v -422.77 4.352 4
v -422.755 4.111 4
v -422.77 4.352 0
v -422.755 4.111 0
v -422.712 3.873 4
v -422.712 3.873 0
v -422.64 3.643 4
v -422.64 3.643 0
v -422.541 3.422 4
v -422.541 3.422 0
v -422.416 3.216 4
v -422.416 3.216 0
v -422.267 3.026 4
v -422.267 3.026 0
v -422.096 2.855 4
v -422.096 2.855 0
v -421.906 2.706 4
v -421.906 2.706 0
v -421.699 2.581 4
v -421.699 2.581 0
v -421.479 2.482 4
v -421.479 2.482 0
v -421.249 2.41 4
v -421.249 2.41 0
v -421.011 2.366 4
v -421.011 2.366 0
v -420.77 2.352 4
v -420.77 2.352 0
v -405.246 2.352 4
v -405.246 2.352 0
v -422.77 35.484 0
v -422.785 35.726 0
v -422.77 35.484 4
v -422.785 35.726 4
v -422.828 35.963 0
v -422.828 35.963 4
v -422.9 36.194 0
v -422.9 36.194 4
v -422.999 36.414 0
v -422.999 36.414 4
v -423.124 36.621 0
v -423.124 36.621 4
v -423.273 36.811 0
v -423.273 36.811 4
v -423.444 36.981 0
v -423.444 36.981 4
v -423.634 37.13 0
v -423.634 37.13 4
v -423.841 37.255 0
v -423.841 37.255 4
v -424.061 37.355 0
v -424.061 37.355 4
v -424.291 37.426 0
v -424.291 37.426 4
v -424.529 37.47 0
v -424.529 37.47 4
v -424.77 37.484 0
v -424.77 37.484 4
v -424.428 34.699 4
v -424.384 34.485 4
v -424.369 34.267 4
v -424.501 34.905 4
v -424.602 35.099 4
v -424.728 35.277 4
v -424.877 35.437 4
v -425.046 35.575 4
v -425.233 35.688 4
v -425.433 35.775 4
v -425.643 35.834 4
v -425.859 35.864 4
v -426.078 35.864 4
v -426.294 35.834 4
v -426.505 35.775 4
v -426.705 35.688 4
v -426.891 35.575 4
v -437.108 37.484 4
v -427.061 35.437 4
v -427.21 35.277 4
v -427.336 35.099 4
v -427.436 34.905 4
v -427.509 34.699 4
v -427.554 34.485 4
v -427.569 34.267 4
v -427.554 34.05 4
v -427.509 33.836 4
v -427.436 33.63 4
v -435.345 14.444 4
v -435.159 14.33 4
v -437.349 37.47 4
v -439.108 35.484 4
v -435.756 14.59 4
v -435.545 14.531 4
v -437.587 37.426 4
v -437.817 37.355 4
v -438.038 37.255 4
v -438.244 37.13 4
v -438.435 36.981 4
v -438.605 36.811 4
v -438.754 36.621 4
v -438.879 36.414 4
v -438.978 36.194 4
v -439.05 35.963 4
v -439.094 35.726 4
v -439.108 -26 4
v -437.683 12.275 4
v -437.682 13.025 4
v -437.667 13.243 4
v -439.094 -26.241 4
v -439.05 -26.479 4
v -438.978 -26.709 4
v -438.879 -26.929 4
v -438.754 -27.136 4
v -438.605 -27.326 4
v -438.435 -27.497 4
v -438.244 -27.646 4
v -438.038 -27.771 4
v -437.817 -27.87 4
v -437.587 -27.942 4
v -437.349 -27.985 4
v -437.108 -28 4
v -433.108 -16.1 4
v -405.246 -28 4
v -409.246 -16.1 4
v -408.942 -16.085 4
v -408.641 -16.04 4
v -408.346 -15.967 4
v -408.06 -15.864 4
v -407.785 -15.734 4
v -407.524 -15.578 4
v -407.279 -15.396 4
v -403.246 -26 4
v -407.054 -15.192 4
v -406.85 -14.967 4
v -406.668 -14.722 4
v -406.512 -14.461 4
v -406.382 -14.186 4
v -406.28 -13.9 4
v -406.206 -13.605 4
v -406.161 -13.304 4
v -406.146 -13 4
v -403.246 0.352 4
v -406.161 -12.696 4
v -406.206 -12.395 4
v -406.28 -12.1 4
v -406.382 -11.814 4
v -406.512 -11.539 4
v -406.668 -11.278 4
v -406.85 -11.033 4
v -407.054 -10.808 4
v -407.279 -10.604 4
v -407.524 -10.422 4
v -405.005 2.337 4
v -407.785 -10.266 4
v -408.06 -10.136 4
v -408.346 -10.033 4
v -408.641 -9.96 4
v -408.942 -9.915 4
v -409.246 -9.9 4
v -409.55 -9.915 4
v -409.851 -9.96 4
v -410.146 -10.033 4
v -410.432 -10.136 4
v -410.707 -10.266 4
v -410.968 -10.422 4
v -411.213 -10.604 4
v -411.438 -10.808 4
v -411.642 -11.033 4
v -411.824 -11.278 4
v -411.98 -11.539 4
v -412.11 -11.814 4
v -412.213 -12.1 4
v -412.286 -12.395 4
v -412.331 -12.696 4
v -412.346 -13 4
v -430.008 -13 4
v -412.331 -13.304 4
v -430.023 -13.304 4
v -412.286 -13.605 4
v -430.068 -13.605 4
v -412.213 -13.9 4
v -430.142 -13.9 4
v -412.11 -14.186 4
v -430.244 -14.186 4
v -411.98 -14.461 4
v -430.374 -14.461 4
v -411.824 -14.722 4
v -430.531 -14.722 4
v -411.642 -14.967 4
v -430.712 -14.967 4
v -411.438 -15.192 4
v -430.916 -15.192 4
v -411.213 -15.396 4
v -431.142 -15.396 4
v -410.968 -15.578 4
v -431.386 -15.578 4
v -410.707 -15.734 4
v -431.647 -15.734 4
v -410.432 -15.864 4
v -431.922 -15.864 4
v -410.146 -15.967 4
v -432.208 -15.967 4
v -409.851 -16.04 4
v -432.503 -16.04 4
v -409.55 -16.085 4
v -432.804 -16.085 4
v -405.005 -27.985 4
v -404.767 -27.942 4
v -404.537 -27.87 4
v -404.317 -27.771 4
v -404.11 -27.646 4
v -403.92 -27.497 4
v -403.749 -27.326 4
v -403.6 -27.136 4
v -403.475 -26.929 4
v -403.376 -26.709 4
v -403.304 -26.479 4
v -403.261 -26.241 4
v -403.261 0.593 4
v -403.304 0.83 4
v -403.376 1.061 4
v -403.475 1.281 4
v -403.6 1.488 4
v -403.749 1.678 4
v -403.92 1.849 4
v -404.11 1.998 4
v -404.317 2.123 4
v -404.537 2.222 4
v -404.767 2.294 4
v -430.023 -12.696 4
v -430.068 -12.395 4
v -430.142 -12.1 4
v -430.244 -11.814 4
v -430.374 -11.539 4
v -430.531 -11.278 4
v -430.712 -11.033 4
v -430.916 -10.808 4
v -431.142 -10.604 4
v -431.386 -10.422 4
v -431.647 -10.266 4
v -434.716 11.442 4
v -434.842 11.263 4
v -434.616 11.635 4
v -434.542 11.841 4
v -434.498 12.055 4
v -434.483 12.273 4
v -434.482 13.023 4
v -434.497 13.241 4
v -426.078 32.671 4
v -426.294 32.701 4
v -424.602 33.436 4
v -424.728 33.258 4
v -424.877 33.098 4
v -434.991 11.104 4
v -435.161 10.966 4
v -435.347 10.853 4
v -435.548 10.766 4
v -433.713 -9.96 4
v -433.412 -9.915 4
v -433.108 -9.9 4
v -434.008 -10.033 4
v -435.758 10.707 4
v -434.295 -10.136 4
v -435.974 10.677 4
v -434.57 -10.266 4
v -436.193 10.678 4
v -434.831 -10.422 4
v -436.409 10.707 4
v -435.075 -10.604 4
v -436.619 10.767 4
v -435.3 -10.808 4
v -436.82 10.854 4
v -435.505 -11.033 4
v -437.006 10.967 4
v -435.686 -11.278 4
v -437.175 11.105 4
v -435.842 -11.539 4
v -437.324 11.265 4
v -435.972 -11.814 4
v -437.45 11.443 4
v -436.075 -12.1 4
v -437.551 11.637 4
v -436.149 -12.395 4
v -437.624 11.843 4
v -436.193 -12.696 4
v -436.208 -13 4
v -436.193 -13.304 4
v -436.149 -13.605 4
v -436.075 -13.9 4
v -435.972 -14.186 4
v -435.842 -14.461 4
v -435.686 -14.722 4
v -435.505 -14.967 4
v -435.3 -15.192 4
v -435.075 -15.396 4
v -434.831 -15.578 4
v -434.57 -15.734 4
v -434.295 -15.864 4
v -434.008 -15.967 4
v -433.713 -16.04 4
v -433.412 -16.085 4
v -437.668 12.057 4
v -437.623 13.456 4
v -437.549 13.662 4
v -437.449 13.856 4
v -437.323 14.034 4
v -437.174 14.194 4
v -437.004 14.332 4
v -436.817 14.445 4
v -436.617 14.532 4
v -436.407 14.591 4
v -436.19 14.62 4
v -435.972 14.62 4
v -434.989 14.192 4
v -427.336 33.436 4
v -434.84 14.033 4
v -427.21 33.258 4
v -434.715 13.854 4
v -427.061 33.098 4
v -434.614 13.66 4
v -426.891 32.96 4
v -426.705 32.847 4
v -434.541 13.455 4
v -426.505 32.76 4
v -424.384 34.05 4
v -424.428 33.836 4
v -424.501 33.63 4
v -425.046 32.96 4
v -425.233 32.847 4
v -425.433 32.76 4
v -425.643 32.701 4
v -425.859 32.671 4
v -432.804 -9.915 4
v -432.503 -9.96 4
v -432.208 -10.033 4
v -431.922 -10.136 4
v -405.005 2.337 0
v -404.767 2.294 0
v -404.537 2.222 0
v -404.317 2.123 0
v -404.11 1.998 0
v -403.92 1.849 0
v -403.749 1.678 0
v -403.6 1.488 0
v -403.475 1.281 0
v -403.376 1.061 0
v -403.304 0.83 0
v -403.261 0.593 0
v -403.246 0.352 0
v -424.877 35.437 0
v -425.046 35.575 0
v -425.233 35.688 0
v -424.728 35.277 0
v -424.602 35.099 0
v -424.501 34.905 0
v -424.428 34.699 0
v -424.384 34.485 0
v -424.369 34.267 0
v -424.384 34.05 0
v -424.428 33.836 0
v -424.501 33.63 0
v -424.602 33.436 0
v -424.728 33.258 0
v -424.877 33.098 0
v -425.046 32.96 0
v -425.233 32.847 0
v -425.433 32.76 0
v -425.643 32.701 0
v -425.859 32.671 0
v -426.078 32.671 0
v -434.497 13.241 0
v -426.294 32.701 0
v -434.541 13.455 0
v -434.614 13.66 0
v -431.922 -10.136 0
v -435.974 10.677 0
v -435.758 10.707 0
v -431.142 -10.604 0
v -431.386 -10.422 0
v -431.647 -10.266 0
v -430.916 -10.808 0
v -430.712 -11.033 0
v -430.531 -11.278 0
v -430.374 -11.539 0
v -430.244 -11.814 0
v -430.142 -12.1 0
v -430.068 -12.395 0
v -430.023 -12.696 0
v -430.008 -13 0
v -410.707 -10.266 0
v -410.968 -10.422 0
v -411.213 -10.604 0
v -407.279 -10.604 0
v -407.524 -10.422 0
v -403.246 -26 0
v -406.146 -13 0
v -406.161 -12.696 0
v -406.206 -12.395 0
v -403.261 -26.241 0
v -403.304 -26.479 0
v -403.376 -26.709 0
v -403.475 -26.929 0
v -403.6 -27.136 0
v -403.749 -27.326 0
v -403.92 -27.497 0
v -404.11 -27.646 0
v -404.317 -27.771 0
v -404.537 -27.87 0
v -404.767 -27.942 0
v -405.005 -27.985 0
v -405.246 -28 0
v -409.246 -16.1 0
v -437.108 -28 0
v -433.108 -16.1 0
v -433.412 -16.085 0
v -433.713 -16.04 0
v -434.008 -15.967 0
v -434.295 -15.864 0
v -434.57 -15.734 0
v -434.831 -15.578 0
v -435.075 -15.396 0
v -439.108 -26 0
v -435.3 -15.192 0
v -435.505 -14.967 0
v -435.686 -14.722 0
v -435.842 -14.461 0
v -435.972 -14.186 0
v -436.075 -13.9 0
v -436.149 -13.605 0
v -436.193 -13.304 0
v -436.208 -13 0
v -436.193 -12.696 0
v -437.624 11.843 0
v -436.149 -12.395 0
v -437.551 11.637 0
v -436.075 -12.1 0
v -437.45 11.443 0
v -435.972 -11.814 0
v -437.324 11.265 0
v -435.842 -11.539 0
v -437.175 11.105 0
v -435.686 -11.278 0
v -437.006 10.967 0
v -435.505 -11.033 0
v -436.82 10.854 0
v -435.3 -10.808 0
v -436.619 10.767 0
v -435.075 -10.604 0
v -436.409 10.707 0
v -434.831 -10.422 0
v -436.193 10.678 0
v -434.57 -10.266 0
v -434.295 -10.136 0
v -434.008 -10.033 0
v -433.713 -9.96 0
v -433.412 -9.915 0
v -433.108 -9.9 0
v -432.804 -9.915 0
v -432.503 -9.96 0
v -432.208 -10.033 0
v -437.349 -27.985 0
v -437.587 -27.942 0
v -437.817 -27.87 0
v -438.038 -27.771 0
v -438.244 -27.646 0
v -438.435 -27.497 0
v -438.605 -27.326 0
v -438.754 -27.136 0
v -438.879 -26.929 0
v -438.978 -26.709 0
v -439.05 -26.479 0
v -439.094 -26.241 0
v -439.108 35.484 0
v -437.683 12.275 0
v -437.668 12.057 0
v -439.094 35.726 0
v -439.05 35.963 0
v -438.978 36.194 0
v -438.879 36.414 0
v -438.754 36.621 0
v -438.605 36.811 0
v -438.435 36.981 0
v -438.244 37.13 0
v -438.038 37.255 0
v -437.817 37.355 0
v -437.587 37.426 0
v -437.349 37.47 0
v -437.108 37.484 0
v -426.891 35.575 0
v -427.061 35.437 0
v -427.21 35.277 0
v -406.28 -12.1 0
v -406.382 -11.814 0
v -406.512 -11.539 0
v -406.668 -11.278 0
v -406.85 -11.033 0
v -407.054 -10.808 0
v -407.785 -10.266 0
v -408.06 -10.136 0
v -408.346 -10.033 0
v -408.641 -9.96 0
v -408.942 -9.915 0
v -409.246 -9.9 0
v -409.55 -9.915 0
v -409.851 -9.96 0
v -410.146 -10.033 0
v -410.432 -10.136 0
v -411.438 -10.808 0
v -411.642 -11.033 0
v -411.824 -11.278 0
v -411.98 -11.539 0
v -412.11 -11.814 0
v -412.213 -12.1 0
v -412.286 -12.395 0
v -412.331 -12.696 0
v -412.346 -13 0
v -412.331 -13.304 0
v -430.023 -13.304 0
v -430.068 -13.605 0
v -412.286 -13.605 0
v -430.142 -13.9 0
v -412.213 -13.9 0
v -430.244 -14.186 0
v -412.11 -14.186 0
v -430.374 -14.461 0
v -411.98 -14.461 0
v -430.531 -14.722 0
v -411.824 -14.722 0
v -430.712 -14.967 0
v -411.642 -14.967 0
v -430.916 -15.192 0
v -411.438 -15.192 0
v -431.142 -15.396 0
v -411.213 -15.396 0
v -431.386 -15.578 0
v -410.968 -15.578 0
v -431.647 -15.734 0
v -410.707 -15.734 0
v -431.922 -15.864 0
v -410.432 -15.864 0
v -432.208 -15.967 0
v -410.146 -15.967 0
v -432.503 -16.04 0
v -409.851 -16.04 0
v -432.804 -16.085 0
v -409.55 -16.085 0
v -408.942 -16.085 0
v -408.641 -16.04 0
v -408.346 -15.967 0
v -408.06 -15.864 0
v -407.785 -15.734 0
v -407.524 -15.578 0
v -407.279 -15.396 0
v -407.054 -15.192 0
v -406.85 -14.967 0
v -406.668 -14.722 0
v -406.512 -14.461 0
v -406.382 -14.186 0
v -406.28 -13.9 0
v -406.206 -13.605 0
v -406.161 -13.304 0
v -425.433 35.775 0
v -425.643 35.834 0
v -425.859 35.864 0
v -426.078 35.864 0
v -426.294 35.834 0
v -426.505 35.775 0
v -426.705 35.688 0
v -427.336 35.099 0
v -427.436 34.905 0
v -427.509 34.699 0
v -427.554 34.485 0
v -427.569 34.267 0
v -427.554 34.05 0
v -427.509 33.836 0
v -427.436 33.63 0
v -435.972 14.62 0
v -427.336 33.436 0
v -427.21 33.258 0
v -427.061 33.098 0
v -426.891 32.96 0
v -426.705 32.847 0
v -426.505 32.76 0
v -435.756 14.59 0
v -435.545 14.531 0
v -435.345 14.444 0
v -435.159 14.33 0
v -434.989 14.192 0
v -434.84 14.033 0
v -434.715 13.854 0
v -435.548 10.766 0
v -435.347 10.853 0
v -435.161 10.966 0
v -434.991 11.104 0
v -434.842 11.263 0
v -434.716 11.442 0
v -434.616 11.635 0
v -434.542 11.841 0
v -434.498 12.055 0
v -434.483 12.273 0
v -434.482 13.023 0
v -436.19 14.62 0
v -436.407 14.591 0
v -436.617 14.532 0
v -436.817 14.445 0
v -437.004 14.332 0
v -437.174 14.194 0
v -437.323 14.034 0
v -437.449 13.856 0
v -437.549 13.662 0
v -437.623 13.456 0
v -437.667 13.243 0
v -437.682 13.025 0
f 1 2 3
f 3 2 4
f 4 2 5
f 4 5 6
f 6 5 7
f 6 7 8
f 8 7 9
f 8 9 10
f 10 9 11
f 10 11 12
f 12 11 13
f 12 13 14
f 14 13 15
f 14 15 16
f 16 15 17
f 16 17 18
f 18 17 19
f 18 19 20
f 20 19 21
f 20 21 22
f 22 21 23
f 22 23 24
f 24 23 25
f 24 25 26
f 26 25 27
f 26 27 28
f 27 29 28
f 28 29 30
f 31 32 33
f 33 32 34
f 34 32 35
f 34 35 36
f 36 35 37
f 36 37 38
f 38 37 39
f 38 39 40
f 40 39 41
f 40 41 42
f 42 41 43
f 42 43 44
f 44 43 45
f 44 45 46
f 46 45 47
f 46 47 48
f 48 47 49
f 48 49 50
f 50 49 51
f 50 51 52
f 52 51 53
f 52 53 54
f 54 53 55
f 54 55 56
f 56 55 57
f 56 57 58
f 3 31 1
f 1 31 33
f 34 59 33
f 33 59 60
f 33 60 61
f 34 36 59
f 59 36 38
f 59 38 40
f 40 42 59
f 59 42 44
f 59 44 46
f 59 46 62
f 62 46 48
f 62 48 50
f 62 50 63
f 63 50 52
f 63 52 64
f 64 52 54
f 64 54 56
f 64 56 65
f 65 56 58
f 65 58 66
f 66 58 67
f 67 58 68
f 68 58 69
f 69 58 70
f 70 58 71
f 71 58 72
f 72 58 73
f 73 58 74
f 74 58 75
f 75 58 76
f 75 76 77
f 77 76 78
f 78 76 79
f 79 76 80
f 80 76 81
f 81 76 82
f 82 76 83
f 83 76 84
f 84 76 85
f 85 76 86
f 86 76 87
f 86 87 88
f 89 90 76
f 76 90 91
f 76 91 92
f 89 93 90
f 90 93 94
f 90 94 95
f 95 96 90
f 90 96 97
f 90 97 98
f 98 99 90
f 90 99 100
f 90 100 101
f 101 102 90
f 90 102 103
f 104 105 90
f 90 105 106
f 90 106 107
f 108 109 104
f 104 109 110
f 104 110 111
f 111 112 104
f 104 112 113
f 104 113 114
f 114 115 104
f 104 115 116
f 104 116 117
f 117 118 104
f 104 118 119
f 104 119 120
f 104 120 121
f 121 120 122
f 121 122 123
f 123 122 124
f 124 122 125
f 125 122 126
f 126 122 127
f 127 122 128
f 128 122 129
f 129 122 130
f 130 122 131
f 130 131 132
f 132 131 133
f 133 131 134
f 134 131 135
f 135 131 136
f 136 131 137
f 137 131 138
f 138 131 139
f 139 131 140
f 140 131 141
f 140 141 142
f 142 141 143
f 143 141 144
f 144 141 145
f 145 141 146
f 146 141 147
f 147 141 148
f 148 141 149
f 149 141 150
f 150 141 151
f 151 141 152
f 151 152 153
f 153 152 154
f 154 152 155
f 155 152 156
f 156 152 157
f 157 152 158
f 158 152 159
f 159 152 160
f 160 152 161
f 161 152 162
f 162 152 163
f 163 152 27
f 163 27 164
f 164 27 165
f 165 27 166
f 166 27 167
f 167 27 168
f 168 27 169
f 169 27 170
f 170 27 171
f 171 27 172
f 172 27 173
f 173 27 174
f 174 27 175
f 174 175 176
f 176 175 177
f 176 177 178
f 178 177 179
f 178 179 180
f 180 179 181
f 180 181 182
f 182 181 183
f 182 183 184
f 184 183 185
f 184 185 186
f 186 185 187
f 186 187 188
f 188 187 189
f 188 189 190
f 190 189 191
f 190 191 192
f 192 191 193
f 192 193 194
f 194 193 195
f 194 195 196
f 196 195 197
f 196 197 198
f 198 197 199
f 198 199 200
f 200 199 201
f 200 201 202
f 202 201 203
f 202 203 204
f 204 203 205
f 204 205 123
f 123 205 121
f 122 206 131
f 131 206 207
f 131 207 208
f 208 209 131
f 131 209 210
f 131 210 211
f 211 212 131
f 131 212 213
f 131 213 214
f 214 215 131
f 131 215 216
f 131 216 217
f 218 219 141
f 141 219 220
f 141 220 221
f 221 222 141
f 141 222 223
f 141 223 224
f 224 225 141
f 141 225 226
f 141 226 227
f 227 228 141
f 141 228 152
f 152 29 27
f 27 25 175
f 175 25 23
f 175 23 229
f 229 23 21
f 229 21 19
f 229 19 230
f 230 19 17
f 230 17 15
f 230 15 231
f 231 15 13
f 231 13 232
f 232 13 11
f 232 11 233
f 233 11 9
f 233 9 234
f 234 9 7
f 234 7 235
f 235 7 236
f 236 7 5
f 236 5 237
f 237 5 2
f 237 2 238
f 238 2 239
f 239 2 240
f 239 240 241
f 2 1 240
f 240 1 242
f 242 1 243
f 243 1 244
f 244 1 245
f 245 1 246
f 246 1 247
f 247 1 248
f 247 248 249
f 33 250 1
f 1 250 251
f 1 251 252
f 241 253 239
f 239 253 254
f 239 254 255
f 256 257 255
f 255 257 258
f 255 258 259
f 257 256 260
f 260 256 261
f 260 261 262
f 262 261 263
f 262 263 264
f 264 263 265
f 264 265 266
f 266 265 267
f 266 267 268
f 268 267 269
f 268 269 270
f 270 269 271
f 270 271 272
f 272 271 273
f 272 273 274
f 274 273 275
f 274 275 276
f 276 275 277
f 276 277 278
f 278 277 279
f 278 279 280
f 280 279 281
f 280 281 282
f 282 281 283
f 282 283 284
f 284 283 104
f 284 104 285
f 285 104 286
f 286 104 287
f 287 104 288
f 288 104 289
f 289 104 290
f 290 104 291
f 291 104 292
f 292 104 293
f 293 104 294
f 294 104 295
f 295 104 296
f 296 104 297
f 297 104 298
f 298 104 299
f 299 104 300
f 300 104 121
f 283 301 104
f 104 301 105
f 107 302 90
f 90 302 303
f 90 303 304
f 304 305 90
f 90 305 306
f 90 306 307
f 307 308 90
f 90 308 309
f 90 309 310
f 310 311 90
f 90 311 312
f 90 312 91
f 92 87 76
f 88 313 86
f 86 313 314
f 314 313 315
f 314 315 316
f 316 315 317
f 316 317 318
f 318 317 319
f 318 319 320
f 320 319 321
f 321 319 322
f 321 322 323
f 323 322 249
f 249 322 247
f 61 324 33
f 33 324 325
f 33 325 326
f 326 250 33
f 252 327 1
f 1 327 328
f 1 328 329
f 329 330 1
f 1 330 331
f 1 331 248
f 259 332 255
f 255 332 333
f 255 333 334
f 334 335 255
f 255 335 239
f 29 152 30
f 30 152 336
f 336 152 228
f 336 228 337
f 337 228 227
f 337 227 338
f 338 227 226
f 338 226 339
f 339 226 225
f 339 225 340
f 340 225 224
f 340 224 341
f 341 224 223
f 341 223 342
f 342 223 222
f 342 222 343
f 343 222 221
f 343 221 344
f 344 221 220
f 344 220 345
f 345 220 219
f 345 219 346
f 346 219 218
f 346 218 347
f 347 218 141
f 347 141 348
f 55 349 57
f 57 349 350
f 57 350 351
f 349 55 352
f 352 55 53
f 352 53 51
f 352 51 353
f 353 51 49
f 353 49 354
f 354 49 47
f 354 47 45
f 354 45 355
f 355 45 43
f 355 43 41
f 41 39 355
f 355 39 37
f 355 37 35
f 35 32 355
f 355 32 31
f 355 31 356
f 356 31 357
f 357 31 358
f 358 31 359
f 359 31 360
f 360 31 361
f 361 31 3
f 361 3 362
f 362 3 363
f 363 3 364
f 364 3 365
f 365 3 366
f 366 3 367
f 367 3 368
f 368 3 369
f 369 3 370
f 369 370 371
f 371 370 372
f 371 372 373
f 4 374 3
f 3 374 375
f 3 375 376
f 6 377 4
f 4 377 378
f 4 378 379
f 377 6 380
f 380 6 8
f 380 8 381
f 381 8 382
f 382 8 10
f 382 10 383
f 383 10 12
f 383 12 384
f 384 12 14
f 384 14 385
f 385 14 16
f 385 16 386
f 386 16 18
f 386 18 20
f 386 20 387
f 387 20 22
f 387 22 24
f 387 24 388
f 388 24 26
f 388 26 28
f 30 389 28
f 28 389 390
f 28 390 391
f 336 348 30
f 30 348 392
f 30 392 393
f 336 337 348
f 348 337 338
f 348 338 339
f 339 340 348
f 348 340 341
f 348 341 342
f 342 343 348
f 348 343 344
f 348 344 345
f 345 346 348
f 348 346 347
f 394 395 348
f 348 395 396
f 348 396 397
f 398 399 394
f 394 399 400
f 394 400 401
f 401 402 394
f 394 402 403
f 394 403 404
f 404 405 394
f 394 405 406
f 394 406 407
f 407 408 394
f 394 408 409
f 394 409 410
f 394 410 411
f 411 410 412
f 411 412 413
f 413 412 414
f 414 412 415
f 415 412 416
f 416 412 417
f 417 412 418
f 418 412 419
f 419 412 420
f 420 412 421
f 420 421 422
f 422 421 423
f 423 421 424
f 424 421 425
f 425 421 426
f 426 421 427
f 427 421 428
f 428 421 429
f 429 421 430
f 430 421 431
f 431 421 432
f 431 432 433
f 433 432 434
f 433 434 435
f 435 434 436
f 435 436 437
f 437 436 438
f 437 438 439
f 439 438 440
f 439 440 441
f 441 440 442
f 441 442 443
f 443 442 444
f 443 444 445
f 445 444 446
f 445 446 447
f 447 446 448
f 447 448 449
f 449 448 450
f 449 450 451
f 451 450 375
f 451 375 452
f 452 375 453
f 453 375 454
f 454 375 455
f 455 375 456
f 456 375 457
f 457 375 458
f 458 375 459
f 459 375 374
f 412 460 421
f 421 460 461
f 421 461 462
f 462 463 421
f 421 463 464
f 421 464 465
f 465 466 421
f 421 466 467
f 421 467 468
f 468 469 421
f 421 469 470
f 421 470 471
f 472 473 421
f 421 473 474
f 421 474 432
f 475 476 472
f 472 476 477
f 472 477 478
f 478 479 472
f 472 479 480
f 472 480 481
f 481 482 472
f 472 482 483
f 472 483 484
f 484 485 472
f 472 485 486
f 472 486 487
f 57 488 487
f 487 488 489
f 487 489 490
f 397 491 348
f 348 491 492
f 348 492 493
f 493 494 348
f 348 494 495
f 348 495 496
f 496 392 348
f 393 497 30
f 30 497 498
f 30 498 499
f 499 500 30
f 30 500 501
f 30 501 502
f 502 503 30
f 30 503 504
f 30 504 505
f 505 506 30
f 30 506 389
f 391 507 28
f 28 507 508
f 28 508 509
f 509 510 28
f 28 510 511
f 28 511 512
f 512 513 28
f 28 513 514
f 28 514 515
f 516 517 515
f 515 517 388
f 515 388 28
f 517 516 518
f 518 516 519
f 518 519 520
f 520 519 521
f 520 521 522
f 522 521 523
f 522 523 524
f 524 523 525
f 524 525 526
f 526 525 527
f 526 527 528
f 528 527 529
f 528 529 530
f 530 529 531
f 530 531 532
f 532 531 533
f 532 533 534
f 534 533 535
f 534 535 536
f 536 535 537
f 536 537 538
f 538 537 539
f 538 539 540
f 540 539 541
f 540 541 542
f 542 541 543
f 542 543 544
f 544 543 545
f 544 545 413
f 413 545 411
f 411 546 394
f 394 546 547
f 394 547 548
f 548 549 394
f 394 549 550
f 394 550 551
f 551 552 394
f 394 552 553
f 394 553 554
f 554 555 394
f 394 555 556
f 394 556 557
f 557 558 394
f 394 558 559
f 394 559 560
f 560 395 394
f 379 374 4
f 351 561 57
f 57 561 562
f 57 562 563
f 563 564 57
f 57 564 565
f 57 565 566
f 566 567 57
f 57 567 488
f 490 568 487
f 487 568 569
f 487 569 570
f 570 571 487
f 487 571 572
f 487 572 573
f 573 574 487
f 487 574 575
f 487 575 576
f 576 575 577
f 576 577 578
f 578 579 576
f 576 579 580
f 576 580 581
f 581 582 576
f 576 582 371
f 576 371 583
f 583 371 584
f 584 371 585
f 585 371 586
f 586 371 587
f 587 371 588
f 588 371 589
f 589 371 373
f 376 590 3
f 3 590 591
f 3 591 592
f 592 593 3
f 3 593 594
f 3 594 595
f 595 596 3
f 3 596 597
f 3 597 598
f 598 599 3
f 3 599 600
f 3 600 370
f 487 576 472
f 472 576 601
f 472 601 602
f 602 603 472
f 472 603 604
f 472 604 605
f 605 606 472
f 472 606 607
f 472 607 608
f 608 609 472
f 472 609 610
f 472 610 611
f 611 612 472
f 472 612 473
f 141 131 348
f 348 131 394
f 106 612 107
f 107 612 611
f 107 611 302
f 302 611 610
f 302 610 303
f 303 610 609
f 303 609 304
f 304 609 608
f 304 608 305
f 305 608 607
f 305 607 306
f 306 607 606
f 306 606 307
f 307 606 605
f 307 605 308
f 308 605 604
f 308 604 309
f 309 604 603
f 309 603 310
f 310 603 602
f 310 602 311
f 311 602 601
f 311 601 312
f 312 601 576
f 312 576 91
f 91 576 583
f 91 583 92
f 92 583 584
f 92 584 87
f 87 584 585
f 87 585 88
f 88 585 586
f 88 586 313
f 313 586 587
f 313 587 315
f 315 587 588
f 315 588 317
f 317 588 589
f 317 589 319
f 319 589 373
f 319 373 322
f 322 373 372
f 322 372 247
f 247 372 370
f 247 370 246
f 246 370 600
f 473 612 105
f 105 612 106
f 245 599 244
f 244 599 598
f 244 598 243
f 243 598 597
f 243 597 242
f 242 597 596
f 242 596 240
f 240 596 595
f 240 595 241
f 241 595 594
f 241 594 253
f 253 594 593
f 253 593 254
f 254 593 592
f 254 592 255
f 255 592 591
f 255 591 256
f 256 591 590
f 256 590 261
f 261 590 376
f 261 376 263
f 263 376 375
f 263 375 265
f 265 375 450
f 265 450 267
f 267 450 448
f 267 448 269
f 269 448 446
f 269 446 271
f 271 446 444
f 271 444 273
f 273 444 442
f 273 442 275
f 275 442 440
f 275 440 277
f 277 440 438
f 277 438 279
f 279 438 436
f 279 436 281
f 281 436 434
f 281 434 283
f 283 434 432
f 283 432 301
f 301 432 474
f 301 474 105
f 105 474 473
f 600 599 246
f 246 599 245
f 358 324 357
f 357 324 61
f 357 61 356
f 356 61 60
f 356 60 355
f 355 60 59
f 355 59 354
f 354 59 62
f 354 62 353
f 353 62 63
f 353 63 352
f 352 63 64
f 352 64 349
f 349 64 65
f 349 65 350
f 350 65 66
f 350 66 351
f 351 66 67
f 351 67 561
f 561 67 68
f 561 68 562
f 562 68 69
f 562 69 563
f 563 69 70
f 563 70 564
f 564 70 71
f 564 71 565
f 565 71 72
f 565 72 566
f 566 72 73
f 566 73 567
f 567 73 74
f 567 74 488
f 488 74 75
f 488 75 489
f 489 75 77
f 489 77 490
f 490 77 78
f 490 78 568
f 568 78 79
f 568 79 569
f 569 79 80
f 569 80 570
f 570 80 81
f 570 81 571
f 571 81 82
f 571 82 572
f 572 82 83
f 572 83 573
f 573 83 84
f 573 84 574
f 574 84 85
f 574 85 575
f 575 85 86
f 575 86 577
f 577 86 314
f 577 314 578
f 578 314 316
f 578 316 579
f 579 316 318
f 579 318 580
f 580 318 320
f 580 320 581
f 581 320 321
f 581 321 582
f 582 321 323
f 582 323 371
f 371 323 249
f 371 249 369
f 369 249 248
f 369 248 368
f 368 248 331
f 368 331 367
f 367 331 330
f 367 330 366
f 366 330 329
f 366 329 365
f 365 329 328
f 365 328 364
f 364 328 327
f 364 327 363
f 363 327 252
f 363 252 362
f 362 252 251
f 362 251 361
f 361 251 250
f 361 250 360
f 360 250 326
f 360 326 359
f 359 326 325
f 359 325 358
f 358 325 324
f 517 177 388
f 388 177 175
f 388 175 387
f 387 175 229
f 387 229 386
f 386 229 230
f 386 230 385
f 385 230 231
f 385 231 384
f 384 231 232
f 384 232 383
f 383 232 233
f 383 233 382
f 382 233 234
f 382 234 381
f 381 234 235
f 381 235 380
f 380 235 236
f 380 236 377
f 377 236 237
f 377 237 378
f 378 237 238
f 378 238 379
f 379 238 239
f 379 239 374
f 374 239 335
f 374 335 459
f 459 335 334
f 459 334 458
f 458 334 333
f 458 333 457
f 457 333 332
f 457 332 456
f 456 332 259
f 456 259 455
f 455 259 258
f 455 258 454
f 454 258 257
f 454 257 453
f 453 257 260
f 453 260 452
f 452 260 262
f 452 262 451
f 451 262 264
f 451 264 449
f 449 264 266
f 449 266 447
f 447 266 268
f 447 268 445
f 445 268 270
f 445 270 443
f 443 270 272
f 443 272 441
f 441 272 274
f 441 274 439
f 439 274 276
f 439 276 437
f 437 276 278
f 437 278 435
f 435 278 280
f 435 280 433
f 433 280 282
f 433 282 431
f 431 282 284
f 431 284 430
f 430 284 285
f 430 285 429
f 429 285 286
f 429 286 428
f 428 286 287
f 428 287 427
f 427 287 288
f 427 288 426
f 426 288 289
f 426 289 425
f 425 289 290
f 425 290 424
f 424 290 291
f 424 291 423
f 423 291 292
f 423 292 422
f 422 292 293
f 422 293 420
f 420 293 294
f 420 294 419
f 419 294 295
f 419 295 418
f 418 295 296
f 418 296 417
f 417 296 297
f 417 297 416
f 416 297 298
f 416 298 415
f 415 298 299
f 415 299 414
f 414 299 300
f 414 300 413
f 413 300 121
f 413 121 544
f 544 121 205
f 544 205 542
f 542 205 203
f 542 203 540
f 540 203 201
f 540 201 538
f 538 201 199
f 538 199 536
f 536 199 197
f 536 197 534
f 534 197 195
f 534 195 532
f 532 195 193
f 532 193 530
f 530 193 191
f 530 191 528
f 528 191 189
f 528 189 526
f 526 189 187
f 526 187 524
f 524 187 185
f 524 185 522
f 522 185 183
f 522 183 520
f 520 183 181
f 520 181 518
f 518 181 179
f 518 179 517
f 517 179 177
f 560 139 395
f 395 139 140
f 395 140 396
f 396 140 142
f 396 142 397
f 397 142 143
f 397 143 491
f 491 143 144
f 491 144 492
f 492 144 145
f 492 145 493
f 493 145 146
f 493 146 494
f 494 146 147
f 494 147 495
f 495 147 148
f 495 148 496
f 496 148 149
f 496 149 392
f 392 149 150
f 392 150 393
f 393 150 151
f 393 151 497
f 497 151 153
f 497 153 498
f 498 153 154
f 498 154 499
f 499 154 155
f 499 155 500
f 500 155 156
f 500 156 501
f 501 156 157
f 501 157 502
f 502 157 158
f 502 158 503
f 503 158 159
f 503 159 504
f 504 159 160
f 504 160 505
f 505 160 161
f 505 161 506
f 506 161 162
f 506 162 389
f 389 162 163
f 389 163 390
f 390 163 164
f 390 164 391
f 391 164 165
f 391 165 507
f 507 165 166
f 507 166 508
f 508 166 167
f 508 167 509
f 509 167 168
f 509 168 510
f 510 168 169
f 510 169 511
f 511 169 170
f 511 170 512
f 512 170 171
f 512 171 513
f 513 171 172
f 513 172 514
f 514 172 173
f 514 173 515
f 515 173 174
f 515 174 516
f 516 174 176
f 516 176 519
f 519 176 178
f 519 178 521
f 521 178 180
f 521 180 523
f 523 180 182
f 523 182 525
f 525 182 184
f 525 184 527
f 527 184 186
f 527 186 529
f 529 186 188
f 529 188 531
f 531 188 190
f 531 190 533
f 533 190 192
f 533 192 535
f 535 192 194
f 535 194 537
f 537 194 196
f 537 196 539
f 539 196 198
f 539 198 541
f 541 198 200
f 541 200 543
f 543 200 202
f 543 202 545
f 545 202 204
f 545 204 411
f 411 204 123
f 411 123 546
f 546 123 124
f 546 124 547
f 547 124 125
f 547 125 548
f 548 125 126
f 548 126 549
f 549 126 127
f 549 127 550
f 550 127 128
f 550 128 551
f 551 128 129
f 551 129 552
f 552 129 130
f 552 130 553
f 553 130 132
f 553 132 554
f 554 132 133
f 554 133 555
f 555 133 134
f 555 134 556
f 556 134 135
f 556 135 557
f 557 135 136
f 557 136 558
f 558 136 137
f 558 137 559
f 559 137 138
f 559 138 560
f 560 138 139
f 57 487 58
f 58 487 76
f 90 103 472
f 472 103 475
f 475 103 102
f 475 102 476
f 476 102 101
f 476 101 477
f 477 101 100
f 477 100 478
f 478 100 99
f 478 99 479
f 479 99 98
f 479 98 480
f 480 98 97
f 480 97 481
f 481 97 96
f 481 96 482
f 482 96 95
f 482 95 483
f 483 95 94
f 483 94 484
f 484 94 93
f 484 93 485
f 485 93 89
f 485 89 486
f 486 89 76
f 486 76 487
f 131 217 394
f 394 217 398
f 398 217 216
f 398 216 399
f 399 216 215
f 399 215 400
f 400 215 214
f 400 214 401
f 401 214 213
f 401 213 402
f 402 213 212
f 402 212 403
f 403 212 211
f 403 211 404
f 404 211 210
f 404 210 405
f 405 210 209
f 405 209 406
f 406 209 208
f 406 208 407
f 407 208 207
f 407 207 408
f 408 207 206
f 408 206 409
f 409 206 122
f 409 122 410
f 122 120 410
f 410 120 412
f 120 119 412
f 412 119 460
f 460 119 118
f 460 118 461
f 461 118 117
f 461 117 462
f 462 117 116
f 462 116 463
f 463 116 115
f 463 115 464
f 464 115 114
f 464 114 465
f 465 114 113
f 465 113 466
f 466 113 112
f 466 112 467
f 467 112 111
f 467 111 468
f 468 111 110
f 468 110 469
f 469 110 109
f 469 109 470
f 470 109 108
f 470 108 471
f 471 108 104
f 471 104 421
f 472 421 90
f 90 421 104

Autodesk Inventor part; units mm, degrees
ref_plane "YZ Plane" through (0, 0, 0) normal (1, 0, 0) x (0, 1, 0)
ref_plane "XZ Plane" through (0, 0, 0) normal (0, 1, 0) x (-1, 0, 0)
ref_plane "XY Plane" through (0, 0, 0) normal (0, 0, 1) x (1, 0, 0)
ref_plane "Work Plane1" through (0, 0, 0) normal (0, 0, 1) x (1, 0, 0)
sketch "Sketch1" plane through (0, 0, 0) normal (0, 0, 1) x (1, 0, 0)
  line L0 (100, -28) -> (-900, -28) projected
  line L1 (-439.1083, -28) -> (-403.2461, -28)
  line L2 (-403.2461, -28) -> (-403.2461, 37.4845)
  line L3 (-403.2461, 37.4845) -> (-439.1083, 37.4845)
  line L4 (-439.1083, 37.4845) -> (-439.1083, -28)
  point P0 (0, 0)
extrude "Extrusion1" add sketch "Sketch1" along normal blind 4
fillet "Fillet1" radius 2 4 edges at (-439.1083, -28, 2) (-403.2461, -28, 2) (-439.1083, 37.4845, 2) (-403.2461, 37.4845, 2)
sketch "Sketch2" plane through (0, 0, 4) normal (0, 0, 1) x (1, 0, 0)
  line L0 (100, -17.1) -> (-900, -17.1) projected
  line L1 (100, -8.9) -> (100, -17.1) projected
  line L2 (100, -8.9) -> (-900, -8.9) projected
  line L3 (-900, -17.1) -> (-900, -8.9) projected
  line L4 (-900, -13) -> (100, -13) construction
  line L5 (-437.1083, -28) -> (-405.2461, -28) construction
  line L6 (-421.1772, -28) -> (-421.1772, 37.4845) construction
  line L7 (-405.2461, 37.4845) -> (-437.1083, 37.4845) construction
  circle A0 centre (-433.1083, -13) radius 3.1
  line L8 (-439.1083, 35.4845) -> (-439.1083, -26) construction
  circle A1 centre (-409.2461, -13) radius 3.1
  point P0 (0, 0)
  dimension "d3" = 6.2
  dimension "d4" = 6
extrude "Extrusion2" cut sketch "Sketch2" against normal through all contours A0 | A1
sketch "Sketch3" plane through (0, 0, 4) normal (0, 0, 1) x (1, 0, 0)
  line L0 (-438.583, 11.7754) -> (-438.5811, 14.7754) projected
  arc A0 (-438.583, 11.7754) -> (-436.5842, 9.7741) centre (-436.583, 11.7741) ccw projected
  line L1 (-433.5842, 9.7722) -> (-436.5842, 9.7741) projected
  line L2 (-433.5823, 12.7722) -> (-433.5842, 9.7722) projected
  arc A1 (-433.5823, 12.7722) -> (-435.5811, 14.7735) centre (-435.5823, 12.7735) ccw projected
  line L3 (-438.5811, 14.7754) -> (-435.5811, 14.7735) projected
  line L4 (-437.6826, 12.2748) -> (-437.6822, 13.0248) projected
  arc A2 (-434.4822, 13.0228) -> (-437.6822, 13.0248) centre (-436.0822, 13.0238) ccw projected
  line L5 (-434.4822, 13.0228) -> (-434.4827, 12.2728) projected
  arc A3 (-437.6826, 12.2748) -> (-434.4827, 12.2728) centre (-436.0827, 12.2738) ccw projected
  line L6 (-423.4684, 34.7658) -> (-423.4703, 31.7658) projected
  arc A4 (-423.4684, 34.7658) -> (-425.4671, 36.7671) centre (-425.4684, 34.7671) ccw projected
  line L7 (-428.4671, 36.769) -> (-425.4671, 36.7671) projected
  line L8 (-428.469, 33.769) -> (-428.4671, 36.769) projected
  arc A5 (-428.469, 33.769) -> (-426.4703, 31.7677) centre (-426.469, 33.7677) ccw projected
  line L9 (-423.4703, 31.7658) -> (-426.4703, 31.7677) projected
  circle A6 centre (-425.9687, 34.2674) radius 1.6 projected
  point P0 (0, 0)
extrude "Extrusion3" cut sketch "Sketch3" against normal through all contours L4 A2 L5 A3 | A6
sketch "Sketch4" plane through (0, 0, 4) normal (0, 0, 1) x (1, 0, 0)
  line L0 (-394.0939, 43.6118) -> (-422.77, 43.6118)
  line L1 (-422.77, 43.6118) -> (-422.77, 2.3518)
  line L2 (-422.77, 2.3518) -> (-394.0939, 2.3518)
  line L3 (-394.0939, 2.3518) -> (-394.0939, 43.6118)
  point P0 (0, 0)
extrude "Extrusion4" cut sketch "Sketch4" against normal through all
fillet "Fillet2" radius 2 3 edges at (-403.2461, 2.3518, 2) (-422.77, 37.4845, 2) (-422.77, 2.3518, 2)
properties part number "Z limit switch holder"
